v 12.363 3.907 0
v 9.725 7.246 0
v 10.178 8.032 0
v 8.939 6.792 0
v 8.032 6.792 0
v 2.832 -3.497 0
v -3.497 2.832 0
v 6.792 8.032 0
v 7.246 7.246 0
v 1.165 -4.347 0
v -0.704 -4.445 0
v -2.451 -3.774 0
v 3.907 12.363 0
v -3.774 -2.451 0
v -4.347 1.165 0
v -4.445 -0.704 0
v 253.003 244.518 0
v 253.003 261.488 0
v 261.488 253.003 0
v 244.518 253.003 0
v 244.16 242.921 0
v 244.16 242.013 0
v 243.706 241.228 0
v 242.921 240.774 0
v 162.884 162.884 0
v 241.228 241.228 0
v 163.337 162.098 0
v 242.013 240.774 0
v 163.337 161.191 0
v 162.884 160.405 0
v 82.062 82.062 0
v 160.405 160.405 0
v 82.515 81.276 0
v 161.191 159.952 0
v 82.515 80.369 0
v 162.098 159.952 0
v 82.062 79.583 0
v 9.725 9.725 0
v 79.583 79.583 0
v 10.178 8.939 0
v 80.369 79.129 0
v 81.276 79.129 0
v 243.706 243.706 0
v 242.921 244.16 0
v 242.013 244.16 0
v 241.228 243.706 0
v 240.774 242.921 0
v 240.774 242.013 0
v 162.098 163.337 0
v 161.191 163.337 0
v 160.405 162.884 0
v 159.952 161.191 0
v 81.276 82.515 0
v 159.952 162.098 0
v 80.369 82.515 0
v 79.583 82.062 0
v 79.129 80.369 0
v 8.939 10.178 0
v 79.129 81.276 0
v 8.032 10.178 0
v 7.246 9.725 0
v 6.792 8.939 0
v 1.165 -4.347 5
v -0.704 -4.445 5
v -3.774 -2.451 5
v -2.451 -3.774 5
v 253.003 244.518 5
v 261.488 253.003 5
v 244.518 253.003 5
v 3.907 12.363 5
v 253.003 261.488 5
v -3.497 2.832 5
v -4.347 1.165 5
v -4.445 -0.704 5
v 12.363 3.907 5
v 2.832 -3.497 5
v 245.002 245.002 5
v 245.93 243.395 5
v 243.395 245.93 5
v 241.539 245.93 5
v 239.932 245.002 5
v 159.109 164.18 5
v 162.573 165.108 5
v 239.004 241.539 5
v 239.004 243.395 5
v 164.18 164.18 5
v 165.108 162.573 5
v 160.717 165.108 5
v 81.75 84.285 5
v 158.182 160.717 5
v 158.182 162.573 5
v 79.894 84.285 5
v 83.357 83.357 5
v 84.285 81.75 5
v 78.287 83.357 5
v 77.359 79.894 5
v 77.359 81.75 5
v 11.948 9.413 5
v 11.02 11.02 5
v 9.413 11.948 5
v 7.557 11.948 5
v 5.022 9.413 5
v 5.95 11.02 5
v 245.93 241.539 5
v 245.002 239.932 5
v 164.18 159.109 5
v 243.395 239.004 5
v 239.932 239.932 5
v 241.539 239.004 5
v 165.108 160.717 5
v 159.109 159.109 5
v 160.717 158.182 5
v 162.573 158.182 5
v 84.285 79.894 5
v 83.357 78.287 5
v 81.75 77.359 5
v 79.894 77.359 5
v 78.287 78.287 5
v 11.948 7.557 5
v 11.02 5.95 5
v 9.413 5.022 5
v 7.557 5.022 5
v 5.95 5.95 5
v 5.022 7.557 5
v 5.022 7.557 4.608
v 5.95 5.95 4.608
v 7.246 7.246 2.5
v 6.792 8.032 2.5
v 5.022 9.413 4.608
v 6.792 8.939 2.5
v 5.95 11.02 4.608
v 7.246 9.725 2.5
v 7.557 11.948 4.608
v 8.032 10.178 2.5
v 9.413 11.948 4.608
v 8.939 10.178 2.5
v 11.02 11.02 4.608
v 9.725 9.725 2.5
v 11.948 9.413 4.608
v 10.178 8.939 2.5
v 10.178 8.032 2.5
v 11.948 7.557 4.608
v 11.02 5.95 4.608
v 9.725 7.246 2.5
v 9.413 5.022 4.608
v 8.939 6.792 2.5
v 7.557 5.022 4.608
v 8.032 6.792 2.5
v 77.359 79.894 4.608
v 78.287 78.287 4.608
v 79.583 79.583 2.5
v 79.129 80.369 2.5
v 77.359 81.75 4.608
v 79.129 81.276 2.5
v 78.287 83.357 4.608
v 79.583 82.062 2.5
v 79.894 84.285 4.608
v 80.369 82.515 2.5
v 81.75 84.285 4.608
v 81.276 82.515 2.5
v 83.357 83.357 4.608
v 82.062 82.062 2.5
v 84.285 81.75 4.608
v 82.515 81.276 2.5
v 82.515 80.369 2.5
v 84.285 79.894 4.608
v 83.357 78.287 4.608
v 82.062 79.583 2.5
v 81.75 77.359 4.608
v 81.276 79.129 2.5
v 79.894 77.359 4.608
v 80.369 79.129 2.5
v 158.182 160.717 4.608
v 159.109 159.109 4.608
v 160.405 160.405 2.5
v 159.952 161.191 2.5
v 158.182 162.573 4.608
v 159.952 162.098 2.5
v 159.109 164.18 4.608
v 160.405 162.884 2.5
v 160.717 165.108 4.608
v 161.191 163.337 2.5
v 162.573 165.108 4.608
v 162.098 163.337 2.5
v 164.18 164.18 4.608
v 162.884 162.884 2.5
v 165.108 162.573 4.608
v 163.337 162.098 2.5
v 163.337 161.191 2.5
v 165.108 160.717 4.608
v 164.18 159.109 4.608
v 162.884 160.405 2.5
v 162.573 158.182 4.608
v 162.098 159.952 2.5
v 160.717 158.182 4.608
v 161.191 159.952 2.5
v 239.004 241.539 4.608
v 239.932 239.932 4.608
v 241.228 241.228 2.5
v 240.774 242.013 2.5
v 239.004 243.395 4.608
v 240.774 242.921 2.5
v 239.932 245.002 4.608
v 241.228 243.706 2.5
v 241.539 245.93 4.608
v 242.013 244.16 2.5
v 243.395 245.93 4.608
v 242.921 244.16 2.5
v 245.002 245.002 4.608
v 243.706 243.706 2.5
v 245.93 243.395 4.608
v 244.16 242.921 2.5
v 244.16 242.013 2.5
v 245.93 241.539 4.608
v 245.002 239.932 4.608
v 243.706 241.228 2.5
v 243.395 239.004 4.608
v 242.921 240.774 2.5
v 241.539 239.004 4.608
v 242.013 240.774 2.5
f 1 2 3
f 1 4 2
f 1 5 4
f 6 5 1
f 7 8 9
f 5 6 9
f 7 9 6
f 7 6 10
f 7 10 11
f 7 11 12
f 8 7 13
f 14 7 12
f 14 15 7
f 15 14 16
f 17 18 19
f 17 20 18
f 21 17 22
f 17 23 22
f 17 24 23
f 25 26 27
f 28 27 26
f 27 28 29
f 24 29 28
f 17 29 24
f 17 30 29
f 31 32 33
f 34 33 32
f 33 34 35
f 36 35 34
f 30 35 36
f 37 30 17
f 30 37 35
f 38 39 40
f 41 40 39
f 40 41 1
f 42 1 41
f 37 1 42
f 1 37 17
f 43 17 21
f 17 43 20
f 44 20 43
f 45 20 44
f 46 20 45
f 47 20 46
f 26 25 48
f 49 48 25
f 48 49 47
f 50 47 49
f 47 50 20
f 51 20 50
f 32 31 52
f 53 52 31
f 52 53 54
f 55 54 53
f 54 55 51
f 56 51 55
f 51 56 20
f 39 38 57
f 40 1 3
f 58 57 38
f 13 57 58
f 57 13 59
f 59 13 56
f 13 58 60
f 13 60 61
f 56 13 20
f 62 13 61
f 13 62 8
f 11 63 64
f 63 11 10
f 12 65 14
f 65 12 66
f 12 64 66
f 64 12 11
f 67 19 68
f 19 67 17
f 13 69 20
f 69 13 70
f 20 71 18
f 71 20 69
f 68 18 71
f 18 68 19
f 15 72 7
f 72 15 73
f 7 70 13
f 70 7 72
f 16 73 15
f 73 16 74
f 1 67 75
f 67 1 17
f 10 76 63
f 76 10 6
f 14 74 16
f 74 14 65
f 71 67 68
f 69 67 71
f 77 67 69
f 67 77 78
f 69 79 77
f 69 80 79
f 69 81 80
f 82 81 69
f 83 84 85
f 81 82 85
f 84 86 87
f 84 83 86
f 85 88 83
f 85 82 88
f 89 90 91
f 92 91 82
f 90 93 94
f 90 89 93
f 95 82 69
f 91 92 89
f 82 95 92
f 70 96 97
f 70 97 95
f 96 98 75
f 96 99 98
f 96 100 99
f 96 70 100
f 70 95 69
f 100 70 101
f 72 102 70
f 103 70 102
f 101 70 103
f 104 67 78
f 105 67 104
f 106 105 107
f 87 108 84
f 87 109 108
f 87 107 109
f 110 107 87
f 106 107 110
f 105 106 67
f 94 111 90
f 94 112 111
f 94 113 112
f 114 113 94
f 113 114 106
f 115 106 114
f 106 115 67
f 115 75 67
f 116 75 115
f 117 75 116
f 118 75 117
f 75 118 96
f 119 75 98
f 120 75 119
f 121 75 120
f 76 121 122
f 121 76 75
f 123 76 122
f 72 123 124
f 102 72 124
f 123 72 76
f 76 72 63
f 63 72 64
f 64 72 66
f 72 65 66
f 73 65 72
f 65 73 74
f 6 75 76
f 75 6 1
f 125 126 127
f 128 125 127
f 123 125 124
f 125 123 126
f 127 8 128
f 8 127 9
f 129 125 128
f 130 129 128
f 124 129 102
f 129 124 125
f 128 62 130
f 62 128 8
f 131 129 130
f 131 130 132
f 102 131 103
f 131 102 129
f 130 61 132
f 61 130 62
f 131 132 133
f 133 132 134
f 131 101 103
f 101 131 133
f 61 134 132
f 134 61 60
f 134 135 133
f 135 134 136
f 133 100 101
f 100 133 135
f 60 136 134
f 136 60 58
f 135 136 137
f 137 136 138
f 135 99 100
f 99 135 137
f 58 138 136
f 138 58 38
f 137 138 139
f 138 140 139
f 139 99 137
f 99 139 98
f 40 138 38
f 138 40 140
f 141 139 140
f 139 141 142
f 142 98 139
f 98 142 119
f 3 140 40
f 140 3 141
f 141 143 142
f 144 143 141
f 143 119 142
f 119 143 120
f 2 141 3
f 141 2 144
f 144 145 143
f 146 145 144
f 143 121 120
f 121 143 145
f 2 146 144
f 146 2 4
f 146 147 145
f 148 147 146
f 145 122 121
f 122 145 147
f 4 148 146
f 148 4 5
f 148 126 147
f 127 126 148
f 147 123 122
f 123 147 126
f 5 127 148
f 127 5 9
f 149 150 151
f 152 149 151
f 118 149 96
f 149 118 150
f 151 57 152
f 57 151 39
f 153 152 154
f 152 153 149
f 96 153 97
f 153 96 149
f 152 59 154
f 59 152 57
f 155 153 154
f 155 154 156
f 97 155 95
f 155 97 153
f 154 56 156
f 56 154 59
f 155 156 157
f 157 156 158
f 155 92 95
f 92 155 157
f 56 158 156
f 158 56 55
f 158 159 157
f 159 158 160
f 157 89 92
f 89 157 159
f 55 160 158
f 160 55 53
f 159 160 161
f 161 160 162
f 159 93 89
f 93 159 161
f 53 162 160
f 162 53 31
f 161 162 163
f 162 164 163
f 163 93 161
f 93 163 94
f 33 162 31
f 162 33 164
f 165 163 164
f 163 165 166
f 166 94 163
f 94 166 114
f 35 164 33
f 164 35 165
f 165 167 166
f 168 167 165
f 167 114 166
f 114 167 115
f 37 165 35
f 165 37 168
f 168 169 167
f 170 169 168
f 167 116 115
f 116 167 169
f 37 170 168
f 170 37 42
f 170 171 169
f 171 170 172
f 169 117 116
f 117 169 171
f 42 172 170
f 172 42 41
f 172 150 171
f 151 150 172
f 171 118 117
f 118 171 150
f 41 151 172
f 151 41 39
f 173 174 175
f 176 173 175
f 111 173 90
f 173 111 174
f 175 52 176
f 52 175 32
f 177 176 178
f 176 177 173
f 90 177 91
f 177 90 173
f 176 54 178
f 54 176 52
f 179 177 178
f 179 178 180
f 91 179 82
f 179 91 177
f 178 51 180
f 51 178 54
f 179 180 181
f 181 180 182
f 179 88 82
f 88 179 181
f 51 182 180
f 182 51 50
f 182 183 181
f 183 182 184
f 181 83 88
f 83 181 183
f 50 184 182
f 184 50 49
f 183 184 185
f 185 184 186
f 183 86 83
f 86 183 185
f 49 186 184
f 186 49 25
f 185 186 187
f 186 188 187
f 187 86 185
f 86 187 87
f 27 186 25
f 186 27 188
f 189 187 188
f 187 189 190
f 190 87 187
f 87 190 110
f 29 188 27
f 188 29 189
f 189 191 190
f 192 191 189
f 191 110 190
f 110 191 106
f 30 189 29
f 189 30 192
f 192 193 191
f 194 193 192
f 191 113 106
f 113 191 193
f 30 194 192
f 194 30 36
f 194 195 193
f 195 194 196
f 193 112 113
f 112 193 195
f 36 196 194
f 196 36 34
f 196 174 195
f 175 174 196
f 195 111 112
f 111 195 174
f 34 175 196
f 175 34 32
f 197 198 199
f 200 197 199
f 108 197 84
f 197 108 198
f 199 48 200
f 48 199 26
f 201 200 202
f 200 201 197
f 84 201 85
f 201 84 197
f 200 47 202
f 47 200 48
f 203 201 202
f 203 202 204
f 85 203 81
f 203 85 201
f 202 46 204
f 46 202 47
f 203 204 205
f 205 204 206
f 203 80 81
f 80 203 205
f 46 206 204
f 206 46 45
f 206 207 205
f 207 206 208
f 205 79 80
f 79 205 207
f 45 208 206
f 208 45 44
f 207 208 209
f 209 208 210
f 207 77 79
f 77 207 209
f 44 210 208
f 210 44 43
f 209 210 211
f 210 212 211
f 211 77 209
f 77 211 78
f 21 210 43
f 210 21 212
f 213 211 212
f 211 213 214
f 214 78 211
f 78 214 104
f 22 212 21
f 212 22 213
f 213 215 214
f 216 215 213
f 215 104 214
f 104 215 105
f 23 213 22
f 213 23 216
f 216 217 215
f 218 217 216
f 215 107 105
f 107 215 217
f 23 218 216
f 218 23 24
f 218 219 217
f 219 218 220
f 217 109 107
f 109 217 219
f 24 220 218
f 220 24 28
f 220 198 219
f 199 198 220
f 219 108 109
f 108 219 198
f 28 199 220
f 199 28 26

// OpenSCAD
// Units: mm

// Glide dimensions:
glide_length = in_to_mm(14.5);
glide_width = 12; 
glide_depth = 5;



// Screw dimensions
// #6 x 1/2" (https://www.boltdepot.com/Product-Details.aspx?product=3953)

screw_diameter = in_to_mm(0.138);  // 3.5052
screw_head_angle = 82;
screw_head_height = in_to_mm(0.083);  // 2.1082

function in_to_mm(v) = v * 25.4;

// x-y origin (z-axis) is center of the hole.
module countersunk_through_hole(diam, length, head_angle, head_height, cs_depth) {
  assert(diam > 0);
  assert(length >= 0);
  assert(head_angle > 0);
  assert(head_angle < 180);
  assert(head_height > 0);

  radius = diam/2;
  head_dx = head_height * tan(head_angle / 2);

  x0 = 0;
  x1 = radius;
  x2 = x1 + head_dx;

  y0 = -1;  // This is a through-hole, so we go below zero to avoid z-fighting.
  y1 = length;
  y2 = y1 + head_height;
  y3 = y2 + cs_depth;

  rotate_extrude() {
    polygon(points=[
      [x0,y0],
      [x1,y0],
      [x1,y1],
      [x2,y2],
      [x2,y3],
      [x0,y3],
    ]);
  }
}

module num6_countersunk_through_hole() {
  length = 2.5;
  cs_depth = glide_depth - length - screw_head_height + 1;
  countersunk_through_hole(screw_diameter, length, screw_head_angle, screw_head_height, cs_depth);
}


*translate([0, 0, 20])
num6_countersunk_through_hole();

module glide_profile() {
  tip = glide_width*0.75;
  hull() {
    circle(d=tip);
    translate([glide_width, 0, 0])
      circle(d=glide_width);

    translate([glide_length - glide_width/2 - tip/2, 0, 0]) {
      #square(size=glide_width, center=true);
    }
  }
}

module glide() {
  rotate([0, 0, 45]) {
    difference() {
      linear_extrude(height=glide_depth) glide_profile();
      translate([glide_width, 0, 0]) {
        num6_countersunk_through_hole();
      }
      translate([in_to_mm(4.5), 0, 0]) {
        num6_countersunk_through_hole();
      }
      translate([in_to_mm(9), 0, 0]) {
        num6_countersunk_through_hole();
      }
      translate([in_to_mm(13.5), 0, 0]) {
        num6_countersunk_through_hole();
      }
    }
  }
}

glide();
